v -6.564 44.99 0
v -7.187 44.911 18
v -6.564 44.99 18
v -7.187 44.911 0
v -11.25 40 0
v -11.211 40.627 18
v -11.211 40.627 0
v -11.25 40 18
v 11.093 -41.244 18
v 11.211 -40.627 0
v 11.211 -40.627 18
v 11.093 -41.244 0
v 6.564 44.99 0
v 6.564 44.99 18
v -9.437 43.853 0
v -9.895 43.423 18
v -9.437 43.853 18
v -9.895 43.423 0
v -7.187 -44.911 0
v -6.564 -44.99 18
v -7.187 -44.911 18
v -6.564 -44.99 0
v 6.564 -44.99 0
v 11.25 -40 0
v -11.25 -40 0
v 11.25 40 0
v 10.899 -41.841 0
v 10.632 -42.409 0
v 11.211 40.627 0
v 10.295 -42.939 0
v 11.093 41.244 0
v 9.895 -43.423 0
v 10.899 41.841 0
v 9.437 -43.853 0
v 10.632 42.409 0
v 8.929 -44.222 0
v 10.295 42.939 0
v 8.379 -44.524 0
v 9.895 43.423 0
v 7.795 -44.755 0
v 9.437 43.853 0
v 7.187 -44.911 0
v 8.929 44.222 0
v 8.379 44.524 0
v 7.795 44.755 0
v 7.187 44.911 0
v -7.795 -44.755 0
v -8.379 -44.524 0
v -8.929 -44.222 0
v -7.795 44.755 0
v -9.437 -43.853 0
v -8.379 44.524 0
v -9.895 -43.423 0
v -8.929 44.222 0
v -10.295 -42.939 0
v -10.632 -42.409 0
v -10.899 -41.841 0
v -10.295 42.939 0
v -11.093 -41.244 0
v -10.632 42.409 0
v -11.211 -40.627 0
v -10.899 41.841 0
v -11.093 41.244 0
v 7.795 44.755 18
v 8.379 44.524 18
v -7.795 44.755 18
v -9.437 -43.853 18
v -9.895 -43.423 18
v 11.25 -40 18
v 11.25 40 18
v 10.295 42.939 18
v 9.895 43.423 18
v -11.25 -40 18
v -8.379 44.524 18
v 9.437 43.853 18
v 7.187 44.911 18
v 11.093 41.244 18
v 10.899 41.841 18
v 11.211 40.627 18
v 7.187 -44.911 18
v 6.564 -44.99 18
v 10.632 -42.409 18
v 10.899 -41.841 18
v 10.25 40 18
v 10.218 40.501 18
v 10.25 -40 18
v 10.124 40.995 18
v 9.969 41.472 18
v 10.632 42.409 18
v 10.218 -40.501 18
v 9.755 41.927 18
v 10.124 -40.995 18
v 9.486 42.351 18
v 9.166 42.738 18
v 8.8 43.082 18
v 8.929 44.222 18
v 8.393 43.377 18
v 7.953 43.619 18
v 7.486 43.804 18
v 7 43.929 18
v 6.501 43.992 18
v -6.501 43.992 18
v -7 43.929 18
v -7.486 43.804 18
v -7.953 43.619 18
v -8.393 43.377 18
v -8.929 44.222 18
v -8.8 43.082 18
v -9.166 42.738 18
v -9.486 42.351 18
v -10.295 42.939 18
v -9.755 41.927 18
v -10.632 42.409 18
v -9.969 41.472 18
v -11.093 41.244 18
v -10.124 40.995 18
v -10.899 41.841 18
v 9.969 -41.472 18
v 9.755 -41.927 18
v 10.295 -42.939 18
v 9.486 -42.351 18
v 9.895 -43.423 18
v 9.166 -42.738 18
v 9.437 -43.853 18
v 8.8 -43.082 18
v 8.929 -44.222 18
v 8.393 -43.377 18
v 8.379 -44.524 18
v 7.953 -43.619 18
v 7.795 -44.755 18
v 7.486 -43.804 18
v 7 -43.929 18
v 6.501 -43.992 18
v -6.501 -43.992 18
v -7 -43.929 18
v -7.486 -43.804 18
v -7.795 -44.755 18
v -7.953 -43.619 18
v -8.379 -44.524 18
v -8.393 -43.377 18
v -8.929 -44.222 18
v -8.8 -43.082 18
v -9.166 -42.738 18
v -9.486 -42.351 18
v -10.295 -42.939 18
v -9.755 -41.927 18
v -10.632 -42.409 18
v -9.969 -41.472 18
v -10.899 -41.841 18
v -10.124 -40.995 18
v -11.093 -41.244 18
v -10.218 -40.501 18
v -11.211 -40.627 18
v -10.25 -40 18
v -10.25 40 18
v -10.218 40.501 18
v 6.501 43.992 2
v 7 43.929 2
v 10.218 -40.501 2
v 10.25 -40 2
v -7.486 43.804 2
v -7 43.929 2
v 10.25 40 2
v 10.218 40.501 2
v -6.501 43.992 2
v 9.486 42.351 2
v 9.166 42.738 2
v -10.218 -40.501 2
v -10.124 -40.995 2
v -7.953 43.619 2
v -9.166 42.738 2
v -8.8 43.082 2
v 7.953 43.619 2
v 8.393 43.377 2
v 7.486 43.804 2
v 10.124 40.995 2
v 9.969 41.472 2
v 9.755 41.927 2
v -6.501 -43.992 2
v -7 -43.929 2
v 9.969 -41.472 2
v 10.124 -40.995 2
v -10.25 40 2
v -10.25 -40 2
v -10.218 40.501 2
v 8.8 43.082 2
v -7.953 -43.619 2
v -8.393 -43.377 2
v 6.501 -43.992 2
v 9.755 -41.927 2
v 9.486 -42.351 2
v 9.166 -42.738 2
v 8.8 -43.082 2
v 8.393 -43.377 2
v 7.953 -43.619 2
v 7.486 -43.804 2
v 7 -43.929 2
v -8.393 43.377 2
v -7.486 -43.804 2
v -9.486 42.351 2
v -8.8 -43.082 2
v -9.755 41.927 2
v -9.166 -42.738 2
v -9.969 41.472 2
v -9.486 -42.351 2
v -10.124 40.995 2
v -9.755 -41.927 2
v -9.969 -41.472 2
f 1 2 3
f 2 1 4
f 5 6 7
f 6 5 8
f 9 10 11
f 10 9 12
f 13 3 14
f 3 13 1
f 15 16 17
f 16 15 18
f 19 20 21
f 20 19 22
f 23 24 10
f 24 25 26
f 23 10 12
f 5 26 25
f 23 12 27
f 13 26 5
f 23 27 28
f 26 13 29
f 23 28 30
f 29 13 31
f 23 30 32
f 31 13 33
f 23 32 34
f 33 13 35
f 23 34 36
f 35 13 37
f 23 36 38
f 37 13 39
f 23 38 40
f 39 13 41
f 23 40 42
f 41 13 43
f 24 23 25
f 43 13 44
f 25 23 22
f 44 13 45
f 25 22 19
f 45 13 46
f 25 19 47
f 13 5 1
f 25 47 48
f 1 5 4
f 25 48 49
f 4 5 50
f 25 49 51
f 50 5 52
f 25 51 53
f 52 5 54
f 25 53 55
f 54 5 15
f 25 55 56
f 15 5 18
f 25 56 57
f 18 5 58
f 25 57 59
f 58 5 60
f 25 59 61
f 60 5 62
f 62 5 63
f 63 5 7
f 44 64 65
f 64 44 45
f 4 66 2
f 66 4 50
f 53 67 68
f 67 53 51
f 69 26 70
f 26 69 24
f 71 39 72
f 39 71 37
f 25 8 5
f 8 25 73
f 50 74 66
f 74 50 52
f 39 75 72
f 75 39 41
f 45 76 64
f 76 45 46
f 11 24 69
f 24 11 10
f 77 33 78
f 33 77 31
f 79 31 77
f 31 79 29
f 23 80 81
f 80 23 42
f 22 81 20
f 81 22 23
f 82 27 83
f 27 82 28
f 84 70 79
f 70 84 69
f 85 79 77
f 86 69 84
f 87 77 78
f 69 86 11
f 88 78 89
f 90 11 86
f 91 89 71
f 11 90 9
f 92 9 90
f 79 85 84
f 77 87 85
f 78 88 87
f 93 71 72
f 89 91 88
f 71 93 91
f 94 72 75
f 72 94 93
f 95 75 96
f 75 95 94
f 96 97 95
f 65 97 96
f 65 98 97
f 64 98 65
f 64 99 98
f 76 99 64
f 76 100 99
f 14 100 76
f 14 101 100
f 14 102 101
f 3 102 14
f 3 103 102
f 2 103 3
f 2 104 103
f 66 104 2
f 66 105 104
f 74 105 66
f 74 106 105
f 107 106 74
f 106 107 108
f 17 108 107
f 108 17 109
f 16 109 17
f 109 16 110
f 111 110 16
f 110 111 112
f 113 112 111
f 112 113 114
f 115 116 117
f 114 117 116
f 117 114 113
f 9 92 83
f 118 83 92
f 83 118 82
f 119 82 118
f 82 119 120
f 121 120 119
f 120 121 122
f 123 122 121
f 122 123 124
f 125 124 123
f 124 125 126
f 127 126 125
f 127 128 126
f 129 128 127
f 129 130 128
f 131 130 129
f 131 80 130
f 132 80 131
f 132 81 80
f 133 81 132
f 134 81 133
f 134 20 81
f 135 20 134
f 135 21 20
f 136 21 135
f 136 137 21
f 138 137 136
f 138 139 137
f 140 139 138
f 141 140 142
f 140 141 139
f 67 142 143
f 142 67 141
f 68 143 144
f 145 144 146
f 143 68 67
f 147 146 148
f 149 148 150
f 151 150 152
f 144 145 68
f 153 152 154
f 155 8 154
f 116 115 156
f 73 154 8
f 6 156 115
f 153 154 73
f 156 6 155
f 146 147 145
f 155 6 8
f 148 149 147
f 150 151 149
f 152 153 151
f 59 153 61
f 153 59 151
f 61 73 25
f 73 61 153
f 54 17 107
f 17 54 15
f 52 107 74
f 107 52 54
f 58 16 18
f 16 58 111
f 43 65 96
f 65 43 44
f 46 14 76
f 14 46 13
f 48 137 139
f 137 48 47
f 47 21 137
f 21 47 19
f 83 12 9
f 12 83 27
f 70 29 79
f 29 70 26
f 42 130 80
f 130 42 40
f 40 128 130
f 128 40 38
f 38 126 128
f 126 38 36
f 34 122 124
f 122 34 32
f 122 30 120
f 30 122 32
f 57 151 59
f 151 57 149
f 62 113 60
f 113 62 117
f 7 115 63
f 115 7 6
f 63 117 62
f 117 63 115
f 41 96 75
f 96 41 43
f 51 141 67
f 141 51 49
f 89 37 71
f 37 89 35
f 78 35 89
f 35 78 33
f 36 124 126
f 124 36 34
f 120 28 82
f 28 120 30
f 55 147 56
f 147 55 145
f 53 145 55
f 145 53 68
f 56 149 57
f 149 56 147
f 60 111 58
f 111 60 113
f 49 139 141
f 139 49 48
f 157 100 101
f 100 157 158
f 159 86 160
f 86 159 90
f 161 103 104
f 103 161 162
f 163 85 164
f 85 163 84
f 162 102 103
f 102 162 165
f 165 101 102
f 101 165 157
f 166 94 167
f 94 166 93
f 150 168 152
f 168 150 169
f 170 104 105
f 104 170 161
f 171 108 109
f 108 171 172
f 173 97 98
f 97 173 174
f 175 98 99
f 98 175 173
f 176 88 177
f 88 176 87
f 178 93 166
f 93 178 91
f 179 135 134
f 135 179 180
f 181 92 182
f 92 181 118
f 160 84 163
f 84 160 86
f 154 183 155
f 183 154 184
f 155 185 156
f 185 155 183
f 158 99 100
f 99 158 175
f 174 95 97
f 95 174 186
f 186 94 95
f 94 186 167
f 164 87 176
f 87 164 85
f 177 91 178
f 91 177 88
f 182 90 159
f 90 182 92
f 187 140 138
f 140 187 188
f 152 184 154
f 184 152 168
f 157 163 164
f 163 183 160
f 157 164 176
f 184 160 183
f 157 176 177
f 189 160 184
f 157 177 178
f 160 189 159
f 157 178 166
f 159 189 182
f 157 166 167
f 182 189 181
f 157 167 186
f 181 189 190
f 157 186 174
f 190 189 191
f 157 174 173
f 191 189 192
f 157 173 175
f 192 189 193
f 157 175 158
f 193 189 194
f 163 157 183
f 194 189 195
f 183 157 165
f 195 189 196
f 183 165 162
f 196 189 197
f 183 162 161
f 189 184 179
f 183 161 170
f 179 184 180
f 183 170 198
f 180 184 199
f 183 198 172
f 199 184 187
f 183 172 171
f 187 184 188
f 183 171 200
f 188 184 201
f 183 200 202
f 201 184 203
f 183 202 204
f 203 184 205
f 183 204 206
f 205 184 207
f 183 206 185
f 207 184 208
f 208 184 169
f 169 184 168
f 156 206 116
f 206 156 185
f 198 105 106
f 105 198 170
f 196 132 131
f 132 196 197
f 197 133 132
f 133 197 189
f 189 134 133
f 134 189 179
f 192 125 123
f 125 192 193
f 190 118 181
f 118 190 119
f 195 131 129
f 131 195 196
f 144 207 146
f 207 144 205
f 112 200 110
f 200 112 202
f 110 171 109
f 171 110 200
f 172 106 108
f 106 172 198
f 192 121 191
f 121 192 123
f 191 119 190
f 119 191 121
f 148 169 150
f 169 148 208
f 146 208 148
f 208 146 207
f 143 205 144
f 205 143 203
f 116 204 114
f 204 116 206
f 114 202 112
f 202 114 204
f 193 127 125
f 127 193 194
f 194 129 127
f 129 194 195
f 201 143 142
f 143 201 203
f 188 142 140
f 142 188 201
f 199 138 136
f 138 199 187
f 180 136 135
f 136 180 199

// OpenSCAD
$fn = 50;


difference() {
	union() {
		hull() {
			translate(v = [-6.2500000000, 40.0000000000, 0]) {
				cylinder(h = 18, r = 5);
			}
			translate(v = [6.2500000000, 40.0000000000, 0]) {
				cylinder(h = 18, r = 5);
			}
			translate(v = [-6.2500000000, -40.0000000000, 0]) {
				cylinder(h = 18, r = 5);
			}
			translate(v = [6.2500000000, -40.0000000000, 0]) {
				cylinder(h = 18, r = 5);
			}
		}
	}
	union() {
		translate(v = [0, 0, 2]) {
			hull() {
				translate(v = [-6.2500000000, 40.0000000000, 0]) {
					cylinder(h = 16, r = 4);
				}
				translate(v = [6.2500000000, 40.0000000000, 0]) {
					cylinder(h = 16, r = 4);
				}
				translate(v = [-6.2500000000, -40.0000000000, 0]) {
					cylinder(h = 16, r = 4);
				}
				translate(v = [6.2500000000, -40.0000000000, 0]) {
					cylinder(h = 16, r = 4);
				}
			}
		}
	}
}
